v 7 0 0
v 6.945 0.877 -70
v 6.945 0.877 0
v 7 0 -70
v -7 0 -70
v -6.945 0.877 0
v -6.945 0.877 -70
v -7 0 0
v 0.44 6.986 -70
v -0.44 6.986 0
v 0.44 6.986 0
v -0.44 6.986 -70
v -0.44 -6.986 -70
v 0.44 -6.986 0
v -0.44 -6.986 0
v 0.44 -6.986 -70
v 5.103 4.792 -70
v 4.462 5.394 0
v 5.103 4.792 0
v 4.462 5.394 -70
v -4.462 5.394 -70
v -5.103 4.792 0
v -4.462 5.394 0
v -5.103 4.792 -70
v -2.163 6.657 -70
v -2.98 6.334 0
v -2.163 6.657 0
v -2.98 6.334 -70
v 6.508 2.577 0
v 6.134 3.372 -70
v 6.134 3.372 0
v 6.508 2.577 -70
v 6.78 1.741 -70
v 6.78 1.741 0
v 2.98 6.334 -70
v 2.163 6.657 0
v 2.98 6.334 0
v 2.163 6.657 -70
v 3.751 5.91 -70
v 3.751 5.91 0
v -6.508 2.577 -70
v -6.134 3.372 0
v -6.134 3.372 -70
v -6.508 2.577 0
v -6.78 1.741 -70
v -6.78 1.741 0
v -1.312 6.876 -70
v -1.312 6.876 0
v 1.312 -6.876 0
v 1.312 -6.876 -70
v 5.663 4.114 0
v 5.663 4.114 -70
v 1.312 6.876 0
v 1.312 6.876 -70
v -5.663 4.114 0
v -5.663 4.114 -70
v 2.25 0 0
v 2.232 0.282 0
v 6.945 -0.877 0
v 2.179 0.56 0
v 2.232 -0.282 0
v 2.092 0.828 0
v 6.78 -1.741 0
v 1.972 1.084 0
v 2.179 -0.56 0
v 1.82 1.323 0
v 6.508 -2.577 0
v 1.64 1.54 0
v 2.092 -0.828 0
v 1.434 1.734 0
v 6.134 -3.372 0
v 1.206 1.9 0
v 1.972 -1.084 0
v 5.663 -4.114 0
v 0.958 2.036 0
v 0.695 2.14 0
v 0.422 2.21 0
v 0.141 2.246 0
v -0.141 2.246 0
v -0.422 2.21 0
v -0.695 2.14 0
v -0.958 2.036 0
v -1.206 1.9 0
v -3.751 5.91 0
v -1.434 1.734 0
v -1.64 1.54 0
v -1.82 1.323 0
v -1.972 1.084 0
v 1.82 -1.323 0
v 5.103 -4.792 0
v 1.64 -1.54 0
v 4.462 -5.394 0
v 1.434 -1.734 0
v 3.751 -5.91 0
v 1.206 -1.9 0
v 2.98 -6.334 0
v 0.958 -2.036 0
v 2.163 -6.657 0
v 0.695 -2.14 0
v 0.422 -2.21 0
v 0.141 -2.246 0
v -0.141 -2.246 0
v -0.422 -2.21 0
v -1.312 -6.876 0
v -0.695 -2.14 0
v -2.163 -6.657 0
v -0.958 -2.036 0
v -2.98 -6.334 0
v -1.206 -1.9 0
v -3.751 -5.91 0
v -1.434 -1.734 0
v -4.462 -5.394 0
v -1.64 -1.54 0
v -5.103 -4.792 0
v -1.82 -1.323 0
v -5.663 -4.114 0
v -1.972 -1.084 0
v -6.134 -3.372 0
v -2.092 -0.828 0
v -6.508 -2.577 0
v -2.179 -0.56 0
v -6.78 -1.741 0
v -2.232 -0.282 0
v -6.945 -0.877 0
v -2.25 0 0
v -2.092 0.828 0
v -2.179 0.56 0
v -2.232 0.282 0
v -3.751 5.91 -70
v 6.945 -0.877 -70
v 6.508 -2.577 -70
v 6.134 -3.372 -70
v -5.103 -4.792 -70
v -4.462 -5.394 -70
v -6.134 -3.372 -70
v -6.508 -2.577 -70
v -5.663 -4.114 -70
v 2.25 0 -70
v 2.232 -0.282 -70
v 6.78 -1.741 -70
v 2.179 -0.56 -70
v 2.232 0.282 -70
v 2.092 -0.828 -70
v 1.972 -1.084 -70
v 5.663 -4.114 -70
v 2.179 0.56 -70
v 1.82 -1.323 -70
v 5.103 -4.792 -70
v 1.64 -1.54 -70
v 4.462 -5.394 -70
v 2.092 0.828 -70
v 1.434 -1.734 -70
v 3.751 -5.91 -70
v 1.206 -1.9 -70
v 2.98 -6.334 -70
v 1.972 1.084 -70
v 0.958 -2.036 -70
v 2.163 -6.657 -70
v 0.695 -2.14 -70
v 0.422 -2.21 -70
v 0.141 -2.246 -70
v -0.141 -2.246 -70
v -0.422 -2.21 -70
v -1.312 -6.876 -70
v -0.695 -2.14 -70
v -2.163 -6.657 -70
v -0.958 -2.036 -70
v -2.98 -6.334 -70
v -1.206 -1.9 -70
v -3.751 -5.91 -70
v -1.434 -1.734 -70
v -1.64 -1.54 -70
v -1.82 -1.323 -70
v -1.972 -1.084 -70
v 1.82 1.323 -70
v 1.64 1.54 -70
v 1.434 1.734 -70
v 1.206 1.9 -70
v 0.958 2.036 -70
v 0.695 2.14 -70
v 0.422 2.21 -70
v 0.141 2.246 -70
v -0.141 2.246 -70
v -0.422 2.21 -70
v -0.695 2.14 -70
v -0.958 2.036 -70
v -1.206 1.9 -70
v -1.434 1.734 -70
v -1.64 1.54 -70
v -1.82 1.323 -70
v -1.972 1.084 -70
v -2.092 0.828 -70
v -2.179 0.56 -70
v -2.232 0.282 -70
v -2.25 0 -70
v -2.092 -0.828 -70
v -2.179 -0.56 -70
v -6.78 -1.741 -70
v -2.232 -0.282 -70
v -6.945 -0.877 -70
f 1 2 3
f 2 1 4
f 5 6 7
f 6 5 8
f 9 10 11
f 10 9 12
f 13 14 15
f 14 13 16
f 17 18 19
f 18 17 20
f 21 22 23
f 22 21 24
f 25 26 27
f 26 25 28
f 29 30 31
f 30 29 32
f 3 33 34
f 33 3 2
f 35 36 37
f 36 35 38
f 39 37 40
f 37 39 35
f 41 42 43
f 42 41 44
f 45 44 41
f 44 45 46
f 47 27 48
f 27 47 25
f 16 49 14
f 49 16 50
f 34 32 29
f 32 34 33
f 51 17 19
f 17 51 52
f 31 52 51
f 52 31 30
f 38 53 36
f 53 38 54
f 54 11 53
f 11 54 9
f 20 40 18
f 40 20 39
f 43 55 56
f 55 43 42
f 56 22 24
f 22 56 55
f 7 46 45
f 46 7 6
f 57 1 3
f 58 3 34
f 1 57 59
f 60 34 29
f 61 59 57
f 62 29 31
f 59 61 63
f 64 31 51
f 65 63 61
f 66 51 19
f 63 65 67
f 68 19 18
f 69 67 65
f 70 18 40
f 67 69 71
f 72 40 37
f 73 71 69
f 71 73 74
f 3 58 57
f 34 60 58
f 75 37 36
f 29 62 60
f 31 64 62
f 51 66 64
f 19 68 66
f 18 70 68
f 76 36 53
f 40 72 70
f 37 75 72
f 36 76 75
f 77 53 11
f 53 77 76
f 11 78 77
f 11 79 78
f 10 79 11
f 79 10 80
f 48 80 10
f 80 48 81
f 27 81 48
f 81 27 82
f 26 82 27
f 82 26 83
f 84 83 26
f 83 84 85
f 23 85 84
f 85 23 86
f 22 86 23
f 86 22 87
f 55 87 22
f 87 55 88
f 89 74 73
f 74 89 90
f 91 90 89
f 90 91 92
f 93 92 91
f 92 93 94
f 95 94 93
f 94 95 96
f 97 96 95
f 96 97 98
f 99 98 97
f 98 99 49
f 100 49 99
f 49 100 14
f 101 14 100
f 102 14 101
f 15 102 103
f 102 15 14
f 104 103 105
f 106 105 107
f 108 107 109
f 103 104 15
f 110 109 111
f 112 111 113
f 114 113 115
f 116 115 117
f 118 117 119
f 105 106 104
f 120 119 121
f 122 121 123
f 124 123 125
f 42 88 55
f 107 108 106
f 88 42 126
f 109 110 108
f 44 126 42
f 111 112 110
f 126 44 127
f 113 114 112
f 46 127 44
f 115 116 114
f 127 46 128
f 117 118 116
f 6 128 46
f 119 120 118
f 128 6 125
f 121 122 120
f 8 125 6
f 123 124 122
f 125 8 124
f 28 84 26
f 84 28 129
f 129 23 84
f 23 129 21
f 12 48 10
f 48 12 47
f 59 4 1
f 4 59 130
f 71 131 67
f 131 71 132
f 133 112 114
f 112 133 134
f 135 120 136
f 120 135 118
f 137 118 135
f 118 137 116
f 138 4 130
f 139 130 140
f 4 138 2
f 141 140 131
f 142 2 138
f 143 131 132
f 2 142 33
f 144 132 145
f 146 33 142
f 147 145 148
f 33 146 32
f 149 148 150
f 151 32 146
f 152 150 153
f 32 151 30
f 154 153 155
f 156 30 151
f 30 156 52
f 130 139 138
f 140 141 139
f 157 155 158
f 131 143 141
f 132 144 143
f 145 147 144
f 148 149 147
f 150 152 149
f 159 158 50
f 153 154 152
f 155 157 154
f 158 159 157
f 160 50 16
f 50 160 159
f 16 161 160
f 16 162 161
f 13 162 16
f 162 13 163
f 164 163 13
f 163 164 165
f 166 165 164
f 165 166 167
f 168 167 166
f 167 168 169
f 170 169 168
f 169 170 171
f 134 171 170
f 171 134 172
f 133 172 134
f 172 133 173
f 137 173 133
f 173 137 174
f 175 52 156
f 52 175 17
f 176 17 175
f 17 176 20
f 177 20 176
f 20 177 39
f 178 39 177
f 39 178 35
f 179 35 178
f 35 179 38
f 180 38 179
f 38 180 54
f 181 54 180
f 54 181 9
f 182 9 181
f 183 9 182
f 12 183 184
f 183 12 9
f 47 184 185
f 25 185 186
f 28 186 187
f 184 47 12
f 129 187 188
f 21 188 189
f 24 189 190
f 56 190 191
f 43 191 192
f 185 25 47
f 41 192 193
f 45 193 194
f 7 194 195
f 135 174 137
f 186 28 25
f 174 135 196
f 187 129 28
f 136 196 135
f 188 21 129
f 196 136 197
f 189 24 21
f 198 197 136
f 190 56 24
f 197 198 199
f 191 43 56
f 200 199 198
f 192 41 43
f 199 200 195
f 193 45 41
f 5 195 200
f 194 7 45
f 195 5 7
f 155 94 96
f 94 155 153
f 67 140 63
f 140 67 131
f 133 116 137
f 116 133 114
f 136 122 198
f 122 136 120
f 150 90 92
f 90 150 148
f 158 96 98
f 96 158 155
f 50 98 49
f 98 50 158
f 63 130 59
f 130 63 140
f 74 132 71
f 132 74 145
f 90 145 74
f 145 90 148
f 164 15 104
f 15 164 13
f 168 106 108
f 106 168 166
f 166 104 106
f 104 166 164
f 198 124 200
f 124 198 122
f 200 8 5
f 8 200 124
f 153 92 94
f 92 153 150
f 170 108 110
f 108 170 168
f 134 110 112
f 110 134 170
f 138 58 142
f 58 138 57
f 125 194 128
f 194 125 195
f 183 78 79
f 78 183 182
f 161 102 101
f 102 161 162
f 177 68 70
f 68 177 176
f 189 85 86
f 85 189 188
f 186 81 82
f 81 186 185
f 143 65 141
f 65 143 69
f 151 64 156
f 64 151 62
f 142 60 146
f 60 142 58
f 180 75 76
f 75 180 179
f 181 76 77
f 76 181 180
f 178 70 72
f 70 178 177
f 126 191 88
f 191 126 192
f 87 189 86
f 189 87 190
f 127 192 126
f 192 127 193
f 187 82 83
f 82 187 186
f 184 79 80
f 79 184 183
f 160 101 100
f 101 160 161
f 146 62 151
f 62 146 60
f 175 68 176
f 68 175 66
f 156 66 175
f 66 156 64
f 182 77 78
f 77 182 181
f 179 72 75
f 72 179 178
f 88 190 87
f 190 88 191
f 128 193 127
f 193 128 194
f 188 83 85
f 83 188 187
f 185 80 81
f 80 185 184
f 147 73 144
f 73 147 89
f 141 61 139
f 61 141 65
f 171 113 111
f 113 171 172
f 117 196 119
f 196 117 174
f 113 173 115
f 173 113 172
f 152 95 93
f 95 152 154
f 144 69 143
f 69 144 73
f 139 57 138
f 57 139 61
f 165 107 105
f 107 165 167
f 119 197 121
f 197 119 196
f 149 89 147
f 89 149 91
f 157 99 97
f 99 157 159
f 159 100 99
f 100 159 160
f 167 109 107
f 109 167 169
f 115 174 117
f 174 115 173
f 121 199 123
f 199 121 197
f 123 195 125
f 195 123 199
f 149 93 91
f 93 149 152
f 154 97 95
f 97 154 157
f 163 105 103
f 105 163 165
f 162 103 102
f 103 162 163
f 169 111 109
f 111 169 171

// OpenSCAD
$fn = 50;


difference() {
	union() {
		translate(v = [0, 0, -70.0000000000]) {
			cylinder(h = 70, r = 7.0000000000);
		}
		cylinder(h = 0, r = 13.0000000000);
	}
	union() {
		#translate(v = [0, 0, -70]) {
			cylinder(h = 70, r = 2.2500000000);
		}
	}
}
